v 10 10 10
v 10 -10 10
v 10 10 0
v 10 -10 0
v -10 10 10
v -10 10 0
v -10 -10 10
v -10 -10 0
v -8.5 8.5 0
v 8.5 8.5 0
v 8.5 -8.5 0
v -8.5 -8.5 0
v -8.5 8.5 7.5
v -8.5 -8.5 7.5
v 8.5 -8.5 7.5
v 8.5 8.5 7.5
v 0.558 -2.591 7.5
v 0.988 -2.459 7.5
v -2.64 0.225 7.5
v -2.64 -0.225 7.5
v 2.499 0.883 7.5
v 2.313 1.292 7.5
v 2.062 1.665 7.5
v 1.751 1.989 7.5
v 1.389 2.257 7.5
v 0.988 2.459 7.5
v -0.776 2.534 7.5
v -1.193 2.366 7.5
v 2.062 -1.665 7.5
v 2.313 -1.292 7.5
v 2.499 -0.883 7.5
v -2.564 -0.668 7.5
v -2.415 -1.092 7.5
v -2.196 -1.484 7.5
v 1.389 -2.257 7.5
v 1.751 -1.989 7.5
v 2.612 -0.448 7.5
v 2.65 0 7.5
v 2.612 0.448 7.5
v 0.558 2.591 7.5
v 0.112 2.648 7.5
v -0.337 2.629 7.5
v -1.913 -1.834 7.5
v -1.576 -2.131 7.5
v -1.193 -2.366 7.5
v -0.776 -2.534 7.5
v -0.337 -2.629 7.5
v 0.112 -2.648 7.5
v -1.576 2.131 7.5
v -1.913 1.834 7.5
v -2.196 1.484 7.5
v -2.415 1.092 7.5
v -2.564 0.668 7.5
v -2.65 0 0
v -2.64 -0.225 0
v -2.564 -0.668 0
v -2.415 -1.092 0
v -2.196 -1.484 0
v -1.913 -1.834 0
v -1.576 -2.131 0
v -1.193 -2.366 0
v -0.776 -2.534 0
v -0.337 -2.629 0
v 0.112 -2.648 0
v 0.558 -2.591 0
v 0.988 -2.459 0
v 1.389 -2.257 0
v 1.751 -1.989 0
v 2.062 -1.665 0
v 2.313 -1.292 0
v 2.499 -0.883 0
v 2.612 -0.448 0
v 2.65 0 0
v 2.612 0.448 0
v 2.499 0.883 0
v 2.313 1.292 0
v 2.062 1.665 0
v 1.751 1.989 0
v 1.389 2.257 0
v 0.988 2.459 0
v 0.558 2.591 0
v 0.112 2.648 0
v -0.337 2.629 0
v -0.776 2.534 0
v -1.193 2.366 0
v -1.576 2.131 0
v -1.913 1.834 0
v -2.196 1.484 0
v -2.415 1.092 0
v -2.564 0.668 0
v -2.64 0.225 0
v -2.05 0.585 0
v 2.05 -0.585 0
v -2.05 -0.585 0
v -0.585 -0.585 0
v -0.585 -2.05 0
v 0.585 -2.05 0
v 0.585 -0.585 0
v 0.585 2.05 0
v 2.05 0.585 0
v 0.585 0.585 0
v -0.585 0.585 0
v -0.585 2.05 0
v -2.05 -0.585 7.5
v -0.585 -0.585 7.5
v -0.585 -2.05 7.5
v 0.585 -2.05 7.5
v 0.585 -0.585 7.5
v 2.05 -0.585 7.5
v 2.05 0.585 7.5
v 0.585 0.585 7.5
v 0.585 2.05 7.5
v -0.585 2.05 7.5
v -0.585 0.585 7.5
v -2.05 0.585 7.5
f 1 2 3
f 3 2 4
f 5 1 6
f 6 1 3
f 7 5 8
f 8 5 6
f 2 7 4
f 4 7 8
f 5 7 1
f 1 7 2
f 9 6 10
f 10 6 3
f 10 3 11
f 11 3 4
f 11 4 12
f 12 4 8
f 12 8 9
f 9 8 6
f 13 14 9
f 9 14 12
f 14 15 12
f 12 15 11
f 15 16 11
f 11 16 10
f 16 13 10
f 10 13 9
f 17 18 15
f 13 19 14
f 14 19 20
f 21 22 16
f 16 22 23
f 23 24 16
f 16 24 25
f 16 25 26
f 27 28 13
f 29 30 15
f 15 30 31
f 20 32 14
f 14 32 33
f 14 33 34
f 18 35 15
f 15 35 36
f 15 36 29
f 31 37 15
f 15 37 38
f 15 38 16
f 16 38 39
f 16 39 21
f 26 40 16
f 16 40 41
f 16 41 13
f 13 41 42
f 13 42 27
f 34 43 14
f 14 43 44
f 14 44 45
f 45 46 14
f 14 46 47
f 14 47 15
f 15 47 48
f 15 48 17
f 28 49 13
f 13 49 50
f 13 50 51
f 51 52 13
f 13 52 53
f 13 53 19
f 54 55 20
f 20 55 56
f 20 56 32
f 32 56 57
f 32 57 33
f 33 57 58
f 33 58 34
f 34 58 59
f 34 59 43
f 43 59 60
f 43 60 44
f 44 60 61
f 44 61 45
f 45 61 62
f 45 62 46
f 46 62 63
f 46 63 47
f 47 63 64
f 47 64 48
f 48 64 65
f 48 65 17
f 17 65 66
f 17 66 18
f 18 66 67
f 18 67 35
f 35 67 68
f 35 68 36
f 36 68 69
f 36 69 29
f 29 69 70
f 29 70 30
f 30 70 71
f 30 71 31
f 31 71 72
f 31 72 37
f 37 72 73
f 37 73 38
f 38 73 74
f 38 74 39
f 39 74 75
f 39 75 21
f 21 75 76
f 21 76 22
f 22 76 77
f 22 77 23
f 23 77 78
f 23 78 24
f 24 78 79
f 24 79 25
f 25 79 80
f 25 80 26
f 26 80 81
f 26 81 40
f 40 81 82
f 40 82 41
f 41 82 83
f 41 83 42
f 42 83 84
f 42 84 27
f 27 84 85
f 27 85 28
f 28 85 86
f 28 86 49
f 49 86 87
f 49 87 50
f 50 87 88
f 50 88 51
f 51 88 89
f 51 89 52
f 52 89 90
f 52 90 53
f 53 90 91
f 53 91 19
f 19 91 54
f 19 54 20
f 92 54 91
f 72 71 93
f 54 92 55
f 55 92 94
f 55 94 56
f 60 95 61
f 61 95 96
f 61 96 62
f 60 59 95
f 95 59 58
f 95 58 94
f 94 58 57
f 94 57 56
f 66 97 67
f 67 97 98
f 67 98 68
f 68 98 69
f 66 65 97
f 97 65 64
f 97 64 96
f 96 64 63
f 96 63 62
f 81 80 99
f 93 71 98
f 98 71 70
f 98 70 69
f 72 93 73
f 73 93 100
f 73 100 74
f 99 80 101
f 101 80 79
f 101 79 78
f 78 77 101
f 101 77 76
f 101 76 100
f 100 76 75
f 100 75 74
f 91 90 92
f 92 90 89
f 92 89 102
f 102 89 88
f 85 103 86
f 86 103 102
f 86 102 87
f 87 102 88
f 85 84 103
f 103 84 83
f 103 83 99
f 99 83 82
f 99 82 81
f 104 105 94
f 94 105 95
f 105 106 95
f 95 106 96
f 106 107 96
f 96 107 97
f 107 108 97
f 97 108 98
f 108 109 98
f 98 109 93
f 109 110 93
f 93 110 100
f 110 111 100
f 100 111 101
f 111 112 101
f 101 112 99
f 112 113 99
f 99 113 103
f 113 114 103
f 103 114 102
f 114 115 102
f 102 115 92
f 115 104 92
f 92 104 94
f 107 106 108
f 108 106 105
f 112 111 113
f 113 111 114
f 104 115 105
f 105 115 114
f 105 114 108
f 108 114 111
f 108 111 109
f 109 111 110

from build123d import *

# Parameters (mm, degrees)
SKICA1_W                 = 20
SKICA1_H                 = 20
P_IDAT_VYSUNUT_M1_DEPTH  = 10
SKICA2_W                 = 17
SKICA2_H                 = 17
ODEBRAT_VYSUNUT_M1_DEPTH = 7.5
SKICA3_R                 = 2.65
P_IDAT_VYSUNUT_M2_DEPTH  = 7.5
ODEBRAT_VYSUNUT_M2_DEPTH = 7.5


with BuildPart() as part:
    # Skica1 → Přidat vysunutím1 (new body)
    with BuildSketch(Plane.XY):
        Rectangle(SKICA1_W, SKICA1_H)
    extrude(amount=P_IDAT_VYSUNUT_M1_DEPTH)

    # Skica2 → Odebrat vysunutím1 (cut)
    with BuildSketch(Plane(origin=(0, 0, 0), x_dir=(-1, 0, 0), z_dir=(0, 0, -1))):
        Rectangle(SKICA2_W, SKICA2_H)
    extrude(amount=-ODEBRAT_VYSUNUT_M1_DEPTH, mode=Mode.SUBTRACT)

    # Skica3 → Přidat vysunutím2 (add)
    with BuildSketch(Plane(origin=(0, 0, 7.5), x_dir=(-1, 0, 0), z_dir=(0, 0, -1))):
        with Locations(Location((0, 0, 0), (0, 0, 180))):
            Circle(SKICA3_R)
    extrude(amount=P_IDAT_VYSUNUT_M2_DEPTH)

    # Skica4 → Odebrat vysunutím2 (cut)
    with BuildSketch(Plane(origin=(0, 0, 0), x_dir=(-1, 0, 0), z_dir=(0, 0, -1))):
        Polygon((-0.585, 2.05), (0.585, 2.05), (0.585, 0.585), (2.05, 0.585), (2.05, -0.585), (0.585, -0.585), (0.585, -2.05), (-0.585, -2.05), (-0.585, -0.585), (-2.05, -0.585), (-2.05, 0.585), (-0.585, 0.585), align=None)
    extrude(amount=-ODEBRAT_VYSUNUT_M2_DEPTH, mode=Mode.SUBTRACT)


solid = part.part
